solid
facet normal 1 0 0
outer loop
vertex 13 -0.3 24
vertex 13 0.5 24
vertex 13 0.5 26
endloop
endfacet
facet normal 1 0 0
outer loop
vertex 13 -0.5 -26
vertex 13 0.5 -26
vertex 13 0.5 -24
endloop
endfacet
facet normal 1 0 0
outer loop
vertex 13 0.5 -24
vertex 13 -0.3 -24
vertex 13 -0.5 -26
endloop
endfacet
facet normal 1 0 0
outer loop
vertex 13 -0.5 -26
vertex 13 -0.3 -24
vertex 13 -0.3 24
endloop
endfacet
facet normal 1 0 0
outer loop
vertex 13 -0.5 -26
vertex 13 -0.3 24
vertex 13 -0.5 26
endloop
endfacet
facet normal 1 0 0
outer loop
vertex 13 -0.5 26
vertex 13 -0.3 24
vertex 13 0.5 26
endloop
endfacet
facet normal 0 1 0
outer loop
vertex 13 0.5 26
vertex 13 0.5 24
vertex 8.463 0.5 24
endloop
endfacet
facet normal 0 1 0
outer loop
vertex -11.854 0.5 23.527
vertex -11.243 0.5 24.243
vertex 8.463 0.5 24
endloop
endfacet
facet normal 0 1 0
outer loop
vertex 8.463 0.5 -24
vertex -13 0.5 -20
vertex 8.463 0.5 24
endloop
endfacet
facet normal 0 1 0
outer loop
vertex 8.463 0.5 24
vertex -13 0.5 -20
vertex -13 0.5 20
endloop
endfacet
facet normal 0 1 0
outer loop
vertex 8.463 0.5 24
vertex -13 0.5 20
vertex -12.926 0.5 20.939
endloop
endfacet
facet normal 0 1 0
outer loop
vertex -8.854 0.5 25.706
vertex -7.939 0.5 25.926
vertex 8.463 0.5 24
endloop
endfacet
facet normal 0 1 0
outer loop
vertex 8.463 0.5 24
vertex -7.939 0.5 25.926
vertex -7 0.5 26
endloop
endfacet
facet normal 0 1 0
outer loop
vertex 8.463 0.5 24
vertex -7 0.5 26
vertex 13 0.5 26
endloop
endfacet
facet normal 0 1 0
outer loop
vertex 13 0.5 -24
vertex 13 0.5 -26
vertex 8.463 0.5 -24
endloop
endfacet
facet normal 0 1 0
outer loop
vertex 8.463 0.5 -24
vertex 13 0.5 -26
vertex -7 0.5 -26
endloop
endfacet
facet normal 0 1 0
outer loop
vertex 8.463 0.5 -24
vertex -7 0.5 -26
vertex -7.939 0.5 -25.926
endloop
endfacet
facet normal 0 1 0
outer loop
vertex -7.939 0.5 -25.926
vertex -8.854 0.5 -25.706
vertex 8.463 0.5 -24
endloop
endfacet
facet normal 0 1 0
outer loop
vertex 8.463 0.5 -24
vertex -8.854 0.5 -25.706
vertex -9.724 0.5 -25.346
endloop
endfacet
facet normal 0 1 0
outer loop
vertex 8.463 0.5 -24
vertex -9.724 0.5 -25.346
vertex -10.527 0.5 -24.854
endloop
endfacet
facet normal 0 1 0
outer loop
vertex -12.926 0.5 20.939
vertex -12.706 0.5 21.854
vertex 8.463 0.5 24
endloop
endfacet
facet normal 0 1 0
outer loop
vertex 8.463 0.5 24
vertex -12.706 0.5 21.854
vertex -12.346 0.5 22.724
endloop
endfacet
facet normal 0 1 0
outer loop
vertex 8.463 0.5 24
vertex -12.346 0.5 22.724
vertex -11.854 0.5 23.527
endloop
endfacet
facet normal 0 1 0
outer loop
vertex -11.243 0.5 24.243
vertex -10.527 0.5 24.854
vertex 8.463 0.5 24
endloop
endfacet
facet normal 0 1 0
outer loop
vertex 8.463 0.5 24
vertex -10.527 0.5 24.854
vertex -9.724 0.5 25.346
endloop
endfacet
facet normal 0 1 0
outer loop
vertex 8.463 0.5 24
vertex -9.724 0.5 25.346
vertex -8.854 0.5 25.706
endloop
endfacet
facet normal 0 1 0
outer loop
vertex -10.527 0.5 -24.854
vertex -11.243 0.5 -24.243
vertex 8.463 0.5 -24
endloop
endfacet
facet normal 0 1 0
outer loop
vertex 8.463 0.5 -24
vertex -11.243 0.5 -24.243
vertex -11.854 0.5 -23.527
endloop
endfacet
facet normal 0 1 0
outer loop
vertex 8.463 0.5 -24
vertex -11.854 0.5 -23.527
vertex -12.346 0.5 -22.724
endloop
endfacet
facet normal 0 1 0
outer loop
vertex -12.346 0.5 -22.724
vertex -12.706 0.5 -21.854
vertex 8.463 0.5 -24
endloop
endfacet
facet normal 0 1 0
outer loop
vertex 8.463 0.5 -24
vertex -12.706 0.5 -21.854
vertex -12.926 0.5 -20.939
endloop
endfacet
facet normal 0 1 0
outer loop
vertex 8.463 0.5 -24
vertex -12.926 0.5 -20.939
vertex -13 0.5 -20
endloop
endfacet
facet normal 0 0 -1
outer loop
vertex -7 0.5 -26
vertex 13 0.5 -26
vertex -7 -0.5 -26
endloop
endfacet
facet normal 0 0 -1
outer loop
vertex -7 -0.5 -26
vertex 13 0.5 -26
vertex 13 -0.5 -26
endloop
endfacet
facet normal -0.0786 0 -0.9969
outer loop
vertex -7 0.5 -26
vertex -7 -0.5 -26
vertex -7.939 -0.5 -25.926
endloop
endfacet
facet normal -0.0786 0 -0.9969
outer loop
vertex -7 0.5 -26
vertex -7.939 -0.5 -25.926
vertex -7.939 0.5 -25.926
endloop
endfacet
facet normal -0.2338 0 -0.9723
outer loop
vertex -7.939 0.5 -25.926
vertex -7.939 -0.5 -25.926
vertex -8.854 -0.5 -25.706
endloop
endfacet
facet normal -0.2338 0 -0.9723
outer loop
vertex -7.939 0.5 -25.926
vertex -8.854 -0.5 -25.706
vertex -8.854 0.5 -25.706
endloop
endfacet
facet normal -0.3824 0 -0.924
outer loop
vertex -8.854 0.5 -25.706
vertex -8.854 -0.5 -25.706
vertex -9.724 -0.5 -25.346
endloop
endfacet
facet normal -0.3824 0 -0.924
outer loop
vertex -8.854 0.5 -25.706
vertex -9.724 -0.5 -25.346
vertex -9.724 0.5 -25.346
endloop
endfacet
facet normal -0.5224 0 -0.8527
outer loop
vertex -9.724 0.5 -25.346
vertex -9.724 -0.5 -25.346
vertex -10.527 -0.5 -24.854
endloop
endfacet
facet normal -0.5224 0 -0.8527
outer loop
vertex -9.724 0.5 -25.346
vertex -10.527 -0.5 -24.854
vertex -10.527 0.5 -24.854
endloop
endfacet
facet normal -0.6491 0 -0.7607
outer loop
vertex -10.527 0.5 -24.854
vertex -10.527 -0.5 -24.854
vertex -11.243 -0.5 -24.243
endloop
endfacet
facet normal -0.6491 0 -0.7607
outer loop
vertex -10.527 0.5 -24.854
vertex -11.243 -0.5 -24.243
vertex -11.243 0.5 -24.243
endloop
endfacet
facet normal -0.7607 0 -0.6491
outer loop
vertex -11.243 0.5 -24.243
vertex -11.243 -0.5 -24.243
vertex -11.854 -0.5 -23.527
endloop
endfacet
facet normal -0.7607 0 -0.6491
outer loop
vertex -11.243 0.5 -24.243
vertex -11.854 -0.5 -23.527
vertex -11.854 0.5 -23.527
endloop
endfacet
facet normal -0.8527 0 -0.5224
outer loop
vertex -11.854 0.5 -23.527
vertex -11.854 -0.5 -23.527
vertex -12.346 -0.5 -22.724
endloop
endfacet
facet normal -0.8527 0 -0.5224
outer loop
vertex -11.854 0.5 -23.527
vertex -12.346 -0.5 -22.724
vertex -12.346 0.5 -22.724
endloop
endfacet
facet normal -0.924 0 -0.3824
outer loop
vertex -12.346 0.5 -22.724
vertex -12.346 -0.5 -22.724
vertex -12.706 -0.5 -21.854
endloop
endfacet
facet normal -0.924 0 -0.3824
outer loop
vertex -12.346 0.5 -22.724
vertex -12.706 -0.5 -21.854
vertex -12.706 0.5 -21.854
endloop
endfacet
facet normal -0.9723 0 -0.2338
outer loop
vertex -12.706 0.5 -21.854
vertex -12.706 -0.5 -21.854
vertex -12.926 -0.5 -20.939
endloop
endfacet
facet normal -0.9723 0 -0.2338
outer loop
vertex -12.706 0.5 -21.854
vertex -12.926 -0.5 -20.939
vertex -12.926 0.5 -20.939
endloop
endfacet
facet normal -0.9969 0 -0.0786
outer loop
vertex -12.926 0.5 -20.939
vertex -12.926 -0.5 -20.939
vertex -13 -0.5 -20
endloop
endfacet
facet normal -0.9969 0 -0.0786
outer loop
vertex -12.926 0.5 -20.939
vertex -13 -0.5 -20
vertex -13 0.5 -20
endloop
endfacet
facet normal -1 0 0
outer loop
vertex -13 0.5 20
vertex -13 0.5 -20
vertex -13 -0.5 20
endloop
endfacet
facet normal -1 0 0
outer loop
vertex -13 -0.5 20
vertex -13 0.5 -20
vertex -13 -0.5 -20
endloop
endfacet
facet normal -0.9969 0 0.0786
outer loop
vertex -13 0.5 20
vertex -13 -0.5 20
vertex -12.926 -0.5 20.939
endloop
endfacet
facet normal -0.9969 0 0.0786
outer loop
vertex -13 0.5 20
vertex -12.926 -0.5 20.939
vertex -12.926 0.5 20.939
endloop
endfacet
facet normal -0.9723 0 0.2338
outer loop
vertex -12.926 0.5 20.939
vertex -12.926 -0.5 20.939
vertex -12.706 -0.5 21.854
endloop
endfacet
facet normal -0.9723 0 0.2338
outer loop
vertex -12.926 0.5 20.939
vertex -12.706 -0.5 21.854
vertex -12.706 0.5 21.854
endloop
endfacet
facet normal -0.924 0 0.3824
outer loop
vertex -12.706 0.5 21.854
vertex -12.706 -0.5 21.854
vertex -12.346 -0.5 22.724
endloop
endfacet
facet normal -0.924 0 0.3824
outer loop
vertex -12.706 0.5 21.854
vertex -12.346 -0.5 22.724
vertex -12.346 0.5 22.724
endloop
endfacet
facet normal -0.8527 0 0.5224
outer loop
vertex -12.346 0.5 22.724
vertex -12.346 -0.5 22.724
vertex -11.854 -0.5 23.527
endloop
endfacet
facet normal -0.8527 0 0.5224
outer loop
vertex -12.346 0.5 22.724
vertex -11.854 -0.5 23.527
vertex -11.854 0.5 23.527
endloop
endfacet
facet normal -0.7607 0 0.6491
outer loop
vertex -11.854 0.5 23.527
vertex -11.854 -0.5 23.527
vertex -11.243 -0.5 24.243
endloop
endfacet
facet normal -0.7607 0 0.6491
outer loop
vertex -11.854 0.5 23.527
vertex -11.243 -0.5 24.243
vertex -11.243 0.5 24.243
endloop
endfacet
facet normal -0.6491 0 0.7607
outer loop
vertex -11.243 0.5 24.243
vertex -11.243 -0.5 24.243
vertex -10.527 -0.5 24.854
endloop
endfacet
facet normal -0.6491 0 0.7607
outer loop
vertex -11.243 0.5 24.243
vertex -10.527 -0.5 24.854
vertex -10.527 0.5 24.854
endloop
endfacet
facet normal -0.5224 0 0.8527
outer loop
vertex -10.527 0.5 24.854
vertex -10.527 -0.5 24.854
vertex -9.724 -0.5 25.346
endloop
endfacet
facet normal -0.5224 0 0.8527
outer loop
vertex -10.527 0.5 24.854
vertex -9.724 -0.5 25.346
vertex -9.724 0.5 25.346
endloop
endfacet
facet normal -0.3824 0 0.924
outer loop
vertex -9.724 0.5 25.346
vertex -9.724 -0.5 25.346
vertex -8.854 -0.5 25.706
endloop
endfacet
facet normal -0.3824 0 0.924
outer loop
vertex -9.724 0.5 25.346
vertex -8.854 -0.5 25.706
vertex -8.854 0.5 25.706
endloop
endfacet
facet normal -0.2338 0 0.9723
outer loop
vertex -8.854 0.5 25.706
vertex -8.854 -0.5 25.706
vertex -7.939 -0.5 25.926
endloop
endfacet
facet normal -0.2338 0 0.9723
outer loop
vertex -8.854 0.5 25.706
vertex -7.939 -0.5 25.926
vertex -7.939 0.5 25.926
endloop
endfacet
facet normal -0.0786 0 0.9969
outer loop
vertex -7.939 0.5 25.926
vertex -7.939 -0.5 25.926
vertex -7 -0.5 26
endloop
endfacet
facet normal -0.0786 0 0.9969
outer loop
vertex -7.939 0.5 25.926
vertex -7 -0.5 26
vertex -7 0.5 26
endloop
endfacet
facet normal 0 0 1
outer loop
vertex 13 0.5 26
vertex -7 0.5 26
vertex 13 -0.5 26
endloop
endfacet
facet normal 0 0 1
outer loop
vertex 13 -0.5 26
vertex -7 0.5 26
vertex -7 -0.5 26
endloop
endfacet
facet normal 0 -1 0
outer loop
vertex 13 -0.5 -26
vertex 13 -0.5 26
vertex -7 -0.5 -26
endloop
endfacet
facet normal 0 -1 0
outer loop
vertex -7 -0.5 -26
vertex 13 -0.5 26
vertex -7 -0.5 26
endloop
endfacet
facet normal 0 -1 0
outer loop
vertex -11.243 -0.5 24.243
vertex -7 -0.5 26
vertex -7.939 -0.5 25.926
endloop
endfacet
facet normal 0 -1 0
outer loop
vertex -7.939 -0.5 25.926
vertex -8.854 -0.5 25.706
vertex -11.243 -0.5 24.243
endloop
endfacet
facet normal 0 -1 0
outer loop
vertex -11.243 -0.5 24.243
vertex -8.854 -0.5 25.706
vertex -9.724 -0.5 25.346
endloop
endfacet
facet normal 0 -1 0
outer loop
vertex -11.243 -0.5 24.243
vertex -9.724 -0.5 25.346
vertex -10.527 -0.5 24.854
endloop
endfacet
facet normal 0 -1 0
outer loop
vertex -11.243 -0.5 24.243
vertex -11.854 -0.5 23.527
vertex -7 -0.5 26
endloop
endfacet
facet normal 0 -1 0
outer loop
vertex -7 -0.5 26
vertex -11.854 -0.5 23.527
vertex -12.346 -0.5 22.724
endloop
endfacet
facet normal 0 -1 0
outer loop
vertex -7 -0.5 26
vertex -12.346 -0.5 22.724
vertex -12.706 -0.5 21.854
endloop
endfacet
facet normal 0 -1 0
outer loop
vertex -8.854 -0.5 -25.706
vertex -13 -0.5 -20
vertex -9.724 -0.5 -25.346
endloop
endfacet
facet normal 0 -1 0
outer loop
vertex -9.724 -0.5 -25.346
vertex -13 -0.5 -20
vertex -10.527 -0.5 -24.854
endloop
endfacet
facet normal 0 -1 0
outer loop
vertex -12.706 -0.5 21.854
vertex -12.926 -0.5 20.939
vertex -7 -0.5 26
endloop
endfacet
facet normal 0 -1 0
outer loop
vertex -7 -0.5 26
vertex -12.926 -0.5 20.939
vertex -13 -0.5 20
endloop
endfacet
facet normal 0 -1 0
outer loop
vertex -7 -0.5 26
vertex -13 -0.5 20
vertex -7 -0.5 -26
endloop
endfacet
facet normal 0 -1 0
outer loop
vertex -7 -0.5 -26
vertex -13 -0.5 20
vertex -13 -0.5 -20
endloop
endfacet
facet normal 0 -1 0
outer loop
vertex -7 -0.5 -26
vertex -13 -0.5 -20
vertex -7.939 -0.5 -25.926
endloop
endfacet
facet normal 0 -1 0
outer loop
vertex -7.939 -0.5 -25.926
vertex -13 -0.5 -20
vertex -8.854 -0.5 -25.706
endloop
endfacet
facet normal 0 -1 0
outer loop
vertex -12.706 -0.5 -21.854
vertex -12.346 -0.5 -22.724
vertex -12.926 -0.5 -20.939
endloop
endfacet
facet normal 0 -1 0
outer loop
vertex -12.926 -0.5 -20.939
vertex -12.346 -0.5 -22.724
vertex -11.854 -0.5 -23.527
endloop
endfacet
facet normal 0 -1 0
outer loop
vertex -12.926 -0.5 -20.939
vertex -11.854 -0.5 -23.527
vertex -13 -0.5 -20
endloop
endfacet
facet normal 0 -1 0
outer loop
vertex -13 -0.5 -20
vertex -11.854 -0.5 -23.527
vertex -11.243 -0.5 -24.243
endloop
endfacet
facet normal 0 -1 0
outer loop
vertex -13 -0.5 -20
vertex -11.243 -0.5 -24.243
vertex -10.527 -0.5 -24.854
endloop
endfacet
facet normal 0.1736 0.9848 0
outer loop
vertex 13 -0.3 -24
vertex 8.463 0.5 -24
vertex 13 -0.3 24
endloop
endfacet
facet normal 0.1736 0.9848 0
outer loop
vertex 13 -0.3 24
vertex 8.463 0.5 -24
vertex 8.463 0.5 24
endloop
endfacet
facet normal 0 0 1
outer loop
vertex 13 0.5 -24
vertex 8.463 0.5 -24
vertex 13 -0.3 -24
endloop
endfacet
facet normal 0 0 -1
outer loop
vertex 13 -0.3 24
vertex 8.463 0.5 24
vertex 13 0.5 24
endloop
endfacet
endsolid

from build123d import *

# Parameters (mm, degrees)
BOSS_EXTRUDE1_DEPTH = 0.5
CUT_EXTRUDE4_DEPTH  = 24


with BuildPart() as part:
    # Sketch1 → Boss-Extrude1 (new body, symmetric)
    with BuildSketch(Plane(origin=(0, 0, 0), x_dir=(1, 0, 0), z_dir=(0, 1, 0))):
        with BuildLine():
            Line((-7, -26), (13, -26))
            Line((13, -26), (13, 26))
            Line((13, 26), (-7, 26))
            ThreePointArc((-7, 26), (-11.242640687, 24.242640687), (-13, 20))
            Line((-13, 20), (-13, -20))
            ThreePointArc((-13, -20), (-11.242640687, -24.242640687), (-7, -26))
        make_face()
    extrude(amount=BOSS_EXTRUDE1_DEPTH, both=True)

    # Sketch2 → Cut-Extrude4 (cut, symmetric)
    with BuildSketch(Plane.XY):
        Polygon((13, -0.3), (8.462974544, 0.5), (13, 0.5), align=None)
    extrude(amount=CUT_EXTRUDE4_DEPTH, both=True, mode=Mode.SUBTRACT)


solid = part.part
